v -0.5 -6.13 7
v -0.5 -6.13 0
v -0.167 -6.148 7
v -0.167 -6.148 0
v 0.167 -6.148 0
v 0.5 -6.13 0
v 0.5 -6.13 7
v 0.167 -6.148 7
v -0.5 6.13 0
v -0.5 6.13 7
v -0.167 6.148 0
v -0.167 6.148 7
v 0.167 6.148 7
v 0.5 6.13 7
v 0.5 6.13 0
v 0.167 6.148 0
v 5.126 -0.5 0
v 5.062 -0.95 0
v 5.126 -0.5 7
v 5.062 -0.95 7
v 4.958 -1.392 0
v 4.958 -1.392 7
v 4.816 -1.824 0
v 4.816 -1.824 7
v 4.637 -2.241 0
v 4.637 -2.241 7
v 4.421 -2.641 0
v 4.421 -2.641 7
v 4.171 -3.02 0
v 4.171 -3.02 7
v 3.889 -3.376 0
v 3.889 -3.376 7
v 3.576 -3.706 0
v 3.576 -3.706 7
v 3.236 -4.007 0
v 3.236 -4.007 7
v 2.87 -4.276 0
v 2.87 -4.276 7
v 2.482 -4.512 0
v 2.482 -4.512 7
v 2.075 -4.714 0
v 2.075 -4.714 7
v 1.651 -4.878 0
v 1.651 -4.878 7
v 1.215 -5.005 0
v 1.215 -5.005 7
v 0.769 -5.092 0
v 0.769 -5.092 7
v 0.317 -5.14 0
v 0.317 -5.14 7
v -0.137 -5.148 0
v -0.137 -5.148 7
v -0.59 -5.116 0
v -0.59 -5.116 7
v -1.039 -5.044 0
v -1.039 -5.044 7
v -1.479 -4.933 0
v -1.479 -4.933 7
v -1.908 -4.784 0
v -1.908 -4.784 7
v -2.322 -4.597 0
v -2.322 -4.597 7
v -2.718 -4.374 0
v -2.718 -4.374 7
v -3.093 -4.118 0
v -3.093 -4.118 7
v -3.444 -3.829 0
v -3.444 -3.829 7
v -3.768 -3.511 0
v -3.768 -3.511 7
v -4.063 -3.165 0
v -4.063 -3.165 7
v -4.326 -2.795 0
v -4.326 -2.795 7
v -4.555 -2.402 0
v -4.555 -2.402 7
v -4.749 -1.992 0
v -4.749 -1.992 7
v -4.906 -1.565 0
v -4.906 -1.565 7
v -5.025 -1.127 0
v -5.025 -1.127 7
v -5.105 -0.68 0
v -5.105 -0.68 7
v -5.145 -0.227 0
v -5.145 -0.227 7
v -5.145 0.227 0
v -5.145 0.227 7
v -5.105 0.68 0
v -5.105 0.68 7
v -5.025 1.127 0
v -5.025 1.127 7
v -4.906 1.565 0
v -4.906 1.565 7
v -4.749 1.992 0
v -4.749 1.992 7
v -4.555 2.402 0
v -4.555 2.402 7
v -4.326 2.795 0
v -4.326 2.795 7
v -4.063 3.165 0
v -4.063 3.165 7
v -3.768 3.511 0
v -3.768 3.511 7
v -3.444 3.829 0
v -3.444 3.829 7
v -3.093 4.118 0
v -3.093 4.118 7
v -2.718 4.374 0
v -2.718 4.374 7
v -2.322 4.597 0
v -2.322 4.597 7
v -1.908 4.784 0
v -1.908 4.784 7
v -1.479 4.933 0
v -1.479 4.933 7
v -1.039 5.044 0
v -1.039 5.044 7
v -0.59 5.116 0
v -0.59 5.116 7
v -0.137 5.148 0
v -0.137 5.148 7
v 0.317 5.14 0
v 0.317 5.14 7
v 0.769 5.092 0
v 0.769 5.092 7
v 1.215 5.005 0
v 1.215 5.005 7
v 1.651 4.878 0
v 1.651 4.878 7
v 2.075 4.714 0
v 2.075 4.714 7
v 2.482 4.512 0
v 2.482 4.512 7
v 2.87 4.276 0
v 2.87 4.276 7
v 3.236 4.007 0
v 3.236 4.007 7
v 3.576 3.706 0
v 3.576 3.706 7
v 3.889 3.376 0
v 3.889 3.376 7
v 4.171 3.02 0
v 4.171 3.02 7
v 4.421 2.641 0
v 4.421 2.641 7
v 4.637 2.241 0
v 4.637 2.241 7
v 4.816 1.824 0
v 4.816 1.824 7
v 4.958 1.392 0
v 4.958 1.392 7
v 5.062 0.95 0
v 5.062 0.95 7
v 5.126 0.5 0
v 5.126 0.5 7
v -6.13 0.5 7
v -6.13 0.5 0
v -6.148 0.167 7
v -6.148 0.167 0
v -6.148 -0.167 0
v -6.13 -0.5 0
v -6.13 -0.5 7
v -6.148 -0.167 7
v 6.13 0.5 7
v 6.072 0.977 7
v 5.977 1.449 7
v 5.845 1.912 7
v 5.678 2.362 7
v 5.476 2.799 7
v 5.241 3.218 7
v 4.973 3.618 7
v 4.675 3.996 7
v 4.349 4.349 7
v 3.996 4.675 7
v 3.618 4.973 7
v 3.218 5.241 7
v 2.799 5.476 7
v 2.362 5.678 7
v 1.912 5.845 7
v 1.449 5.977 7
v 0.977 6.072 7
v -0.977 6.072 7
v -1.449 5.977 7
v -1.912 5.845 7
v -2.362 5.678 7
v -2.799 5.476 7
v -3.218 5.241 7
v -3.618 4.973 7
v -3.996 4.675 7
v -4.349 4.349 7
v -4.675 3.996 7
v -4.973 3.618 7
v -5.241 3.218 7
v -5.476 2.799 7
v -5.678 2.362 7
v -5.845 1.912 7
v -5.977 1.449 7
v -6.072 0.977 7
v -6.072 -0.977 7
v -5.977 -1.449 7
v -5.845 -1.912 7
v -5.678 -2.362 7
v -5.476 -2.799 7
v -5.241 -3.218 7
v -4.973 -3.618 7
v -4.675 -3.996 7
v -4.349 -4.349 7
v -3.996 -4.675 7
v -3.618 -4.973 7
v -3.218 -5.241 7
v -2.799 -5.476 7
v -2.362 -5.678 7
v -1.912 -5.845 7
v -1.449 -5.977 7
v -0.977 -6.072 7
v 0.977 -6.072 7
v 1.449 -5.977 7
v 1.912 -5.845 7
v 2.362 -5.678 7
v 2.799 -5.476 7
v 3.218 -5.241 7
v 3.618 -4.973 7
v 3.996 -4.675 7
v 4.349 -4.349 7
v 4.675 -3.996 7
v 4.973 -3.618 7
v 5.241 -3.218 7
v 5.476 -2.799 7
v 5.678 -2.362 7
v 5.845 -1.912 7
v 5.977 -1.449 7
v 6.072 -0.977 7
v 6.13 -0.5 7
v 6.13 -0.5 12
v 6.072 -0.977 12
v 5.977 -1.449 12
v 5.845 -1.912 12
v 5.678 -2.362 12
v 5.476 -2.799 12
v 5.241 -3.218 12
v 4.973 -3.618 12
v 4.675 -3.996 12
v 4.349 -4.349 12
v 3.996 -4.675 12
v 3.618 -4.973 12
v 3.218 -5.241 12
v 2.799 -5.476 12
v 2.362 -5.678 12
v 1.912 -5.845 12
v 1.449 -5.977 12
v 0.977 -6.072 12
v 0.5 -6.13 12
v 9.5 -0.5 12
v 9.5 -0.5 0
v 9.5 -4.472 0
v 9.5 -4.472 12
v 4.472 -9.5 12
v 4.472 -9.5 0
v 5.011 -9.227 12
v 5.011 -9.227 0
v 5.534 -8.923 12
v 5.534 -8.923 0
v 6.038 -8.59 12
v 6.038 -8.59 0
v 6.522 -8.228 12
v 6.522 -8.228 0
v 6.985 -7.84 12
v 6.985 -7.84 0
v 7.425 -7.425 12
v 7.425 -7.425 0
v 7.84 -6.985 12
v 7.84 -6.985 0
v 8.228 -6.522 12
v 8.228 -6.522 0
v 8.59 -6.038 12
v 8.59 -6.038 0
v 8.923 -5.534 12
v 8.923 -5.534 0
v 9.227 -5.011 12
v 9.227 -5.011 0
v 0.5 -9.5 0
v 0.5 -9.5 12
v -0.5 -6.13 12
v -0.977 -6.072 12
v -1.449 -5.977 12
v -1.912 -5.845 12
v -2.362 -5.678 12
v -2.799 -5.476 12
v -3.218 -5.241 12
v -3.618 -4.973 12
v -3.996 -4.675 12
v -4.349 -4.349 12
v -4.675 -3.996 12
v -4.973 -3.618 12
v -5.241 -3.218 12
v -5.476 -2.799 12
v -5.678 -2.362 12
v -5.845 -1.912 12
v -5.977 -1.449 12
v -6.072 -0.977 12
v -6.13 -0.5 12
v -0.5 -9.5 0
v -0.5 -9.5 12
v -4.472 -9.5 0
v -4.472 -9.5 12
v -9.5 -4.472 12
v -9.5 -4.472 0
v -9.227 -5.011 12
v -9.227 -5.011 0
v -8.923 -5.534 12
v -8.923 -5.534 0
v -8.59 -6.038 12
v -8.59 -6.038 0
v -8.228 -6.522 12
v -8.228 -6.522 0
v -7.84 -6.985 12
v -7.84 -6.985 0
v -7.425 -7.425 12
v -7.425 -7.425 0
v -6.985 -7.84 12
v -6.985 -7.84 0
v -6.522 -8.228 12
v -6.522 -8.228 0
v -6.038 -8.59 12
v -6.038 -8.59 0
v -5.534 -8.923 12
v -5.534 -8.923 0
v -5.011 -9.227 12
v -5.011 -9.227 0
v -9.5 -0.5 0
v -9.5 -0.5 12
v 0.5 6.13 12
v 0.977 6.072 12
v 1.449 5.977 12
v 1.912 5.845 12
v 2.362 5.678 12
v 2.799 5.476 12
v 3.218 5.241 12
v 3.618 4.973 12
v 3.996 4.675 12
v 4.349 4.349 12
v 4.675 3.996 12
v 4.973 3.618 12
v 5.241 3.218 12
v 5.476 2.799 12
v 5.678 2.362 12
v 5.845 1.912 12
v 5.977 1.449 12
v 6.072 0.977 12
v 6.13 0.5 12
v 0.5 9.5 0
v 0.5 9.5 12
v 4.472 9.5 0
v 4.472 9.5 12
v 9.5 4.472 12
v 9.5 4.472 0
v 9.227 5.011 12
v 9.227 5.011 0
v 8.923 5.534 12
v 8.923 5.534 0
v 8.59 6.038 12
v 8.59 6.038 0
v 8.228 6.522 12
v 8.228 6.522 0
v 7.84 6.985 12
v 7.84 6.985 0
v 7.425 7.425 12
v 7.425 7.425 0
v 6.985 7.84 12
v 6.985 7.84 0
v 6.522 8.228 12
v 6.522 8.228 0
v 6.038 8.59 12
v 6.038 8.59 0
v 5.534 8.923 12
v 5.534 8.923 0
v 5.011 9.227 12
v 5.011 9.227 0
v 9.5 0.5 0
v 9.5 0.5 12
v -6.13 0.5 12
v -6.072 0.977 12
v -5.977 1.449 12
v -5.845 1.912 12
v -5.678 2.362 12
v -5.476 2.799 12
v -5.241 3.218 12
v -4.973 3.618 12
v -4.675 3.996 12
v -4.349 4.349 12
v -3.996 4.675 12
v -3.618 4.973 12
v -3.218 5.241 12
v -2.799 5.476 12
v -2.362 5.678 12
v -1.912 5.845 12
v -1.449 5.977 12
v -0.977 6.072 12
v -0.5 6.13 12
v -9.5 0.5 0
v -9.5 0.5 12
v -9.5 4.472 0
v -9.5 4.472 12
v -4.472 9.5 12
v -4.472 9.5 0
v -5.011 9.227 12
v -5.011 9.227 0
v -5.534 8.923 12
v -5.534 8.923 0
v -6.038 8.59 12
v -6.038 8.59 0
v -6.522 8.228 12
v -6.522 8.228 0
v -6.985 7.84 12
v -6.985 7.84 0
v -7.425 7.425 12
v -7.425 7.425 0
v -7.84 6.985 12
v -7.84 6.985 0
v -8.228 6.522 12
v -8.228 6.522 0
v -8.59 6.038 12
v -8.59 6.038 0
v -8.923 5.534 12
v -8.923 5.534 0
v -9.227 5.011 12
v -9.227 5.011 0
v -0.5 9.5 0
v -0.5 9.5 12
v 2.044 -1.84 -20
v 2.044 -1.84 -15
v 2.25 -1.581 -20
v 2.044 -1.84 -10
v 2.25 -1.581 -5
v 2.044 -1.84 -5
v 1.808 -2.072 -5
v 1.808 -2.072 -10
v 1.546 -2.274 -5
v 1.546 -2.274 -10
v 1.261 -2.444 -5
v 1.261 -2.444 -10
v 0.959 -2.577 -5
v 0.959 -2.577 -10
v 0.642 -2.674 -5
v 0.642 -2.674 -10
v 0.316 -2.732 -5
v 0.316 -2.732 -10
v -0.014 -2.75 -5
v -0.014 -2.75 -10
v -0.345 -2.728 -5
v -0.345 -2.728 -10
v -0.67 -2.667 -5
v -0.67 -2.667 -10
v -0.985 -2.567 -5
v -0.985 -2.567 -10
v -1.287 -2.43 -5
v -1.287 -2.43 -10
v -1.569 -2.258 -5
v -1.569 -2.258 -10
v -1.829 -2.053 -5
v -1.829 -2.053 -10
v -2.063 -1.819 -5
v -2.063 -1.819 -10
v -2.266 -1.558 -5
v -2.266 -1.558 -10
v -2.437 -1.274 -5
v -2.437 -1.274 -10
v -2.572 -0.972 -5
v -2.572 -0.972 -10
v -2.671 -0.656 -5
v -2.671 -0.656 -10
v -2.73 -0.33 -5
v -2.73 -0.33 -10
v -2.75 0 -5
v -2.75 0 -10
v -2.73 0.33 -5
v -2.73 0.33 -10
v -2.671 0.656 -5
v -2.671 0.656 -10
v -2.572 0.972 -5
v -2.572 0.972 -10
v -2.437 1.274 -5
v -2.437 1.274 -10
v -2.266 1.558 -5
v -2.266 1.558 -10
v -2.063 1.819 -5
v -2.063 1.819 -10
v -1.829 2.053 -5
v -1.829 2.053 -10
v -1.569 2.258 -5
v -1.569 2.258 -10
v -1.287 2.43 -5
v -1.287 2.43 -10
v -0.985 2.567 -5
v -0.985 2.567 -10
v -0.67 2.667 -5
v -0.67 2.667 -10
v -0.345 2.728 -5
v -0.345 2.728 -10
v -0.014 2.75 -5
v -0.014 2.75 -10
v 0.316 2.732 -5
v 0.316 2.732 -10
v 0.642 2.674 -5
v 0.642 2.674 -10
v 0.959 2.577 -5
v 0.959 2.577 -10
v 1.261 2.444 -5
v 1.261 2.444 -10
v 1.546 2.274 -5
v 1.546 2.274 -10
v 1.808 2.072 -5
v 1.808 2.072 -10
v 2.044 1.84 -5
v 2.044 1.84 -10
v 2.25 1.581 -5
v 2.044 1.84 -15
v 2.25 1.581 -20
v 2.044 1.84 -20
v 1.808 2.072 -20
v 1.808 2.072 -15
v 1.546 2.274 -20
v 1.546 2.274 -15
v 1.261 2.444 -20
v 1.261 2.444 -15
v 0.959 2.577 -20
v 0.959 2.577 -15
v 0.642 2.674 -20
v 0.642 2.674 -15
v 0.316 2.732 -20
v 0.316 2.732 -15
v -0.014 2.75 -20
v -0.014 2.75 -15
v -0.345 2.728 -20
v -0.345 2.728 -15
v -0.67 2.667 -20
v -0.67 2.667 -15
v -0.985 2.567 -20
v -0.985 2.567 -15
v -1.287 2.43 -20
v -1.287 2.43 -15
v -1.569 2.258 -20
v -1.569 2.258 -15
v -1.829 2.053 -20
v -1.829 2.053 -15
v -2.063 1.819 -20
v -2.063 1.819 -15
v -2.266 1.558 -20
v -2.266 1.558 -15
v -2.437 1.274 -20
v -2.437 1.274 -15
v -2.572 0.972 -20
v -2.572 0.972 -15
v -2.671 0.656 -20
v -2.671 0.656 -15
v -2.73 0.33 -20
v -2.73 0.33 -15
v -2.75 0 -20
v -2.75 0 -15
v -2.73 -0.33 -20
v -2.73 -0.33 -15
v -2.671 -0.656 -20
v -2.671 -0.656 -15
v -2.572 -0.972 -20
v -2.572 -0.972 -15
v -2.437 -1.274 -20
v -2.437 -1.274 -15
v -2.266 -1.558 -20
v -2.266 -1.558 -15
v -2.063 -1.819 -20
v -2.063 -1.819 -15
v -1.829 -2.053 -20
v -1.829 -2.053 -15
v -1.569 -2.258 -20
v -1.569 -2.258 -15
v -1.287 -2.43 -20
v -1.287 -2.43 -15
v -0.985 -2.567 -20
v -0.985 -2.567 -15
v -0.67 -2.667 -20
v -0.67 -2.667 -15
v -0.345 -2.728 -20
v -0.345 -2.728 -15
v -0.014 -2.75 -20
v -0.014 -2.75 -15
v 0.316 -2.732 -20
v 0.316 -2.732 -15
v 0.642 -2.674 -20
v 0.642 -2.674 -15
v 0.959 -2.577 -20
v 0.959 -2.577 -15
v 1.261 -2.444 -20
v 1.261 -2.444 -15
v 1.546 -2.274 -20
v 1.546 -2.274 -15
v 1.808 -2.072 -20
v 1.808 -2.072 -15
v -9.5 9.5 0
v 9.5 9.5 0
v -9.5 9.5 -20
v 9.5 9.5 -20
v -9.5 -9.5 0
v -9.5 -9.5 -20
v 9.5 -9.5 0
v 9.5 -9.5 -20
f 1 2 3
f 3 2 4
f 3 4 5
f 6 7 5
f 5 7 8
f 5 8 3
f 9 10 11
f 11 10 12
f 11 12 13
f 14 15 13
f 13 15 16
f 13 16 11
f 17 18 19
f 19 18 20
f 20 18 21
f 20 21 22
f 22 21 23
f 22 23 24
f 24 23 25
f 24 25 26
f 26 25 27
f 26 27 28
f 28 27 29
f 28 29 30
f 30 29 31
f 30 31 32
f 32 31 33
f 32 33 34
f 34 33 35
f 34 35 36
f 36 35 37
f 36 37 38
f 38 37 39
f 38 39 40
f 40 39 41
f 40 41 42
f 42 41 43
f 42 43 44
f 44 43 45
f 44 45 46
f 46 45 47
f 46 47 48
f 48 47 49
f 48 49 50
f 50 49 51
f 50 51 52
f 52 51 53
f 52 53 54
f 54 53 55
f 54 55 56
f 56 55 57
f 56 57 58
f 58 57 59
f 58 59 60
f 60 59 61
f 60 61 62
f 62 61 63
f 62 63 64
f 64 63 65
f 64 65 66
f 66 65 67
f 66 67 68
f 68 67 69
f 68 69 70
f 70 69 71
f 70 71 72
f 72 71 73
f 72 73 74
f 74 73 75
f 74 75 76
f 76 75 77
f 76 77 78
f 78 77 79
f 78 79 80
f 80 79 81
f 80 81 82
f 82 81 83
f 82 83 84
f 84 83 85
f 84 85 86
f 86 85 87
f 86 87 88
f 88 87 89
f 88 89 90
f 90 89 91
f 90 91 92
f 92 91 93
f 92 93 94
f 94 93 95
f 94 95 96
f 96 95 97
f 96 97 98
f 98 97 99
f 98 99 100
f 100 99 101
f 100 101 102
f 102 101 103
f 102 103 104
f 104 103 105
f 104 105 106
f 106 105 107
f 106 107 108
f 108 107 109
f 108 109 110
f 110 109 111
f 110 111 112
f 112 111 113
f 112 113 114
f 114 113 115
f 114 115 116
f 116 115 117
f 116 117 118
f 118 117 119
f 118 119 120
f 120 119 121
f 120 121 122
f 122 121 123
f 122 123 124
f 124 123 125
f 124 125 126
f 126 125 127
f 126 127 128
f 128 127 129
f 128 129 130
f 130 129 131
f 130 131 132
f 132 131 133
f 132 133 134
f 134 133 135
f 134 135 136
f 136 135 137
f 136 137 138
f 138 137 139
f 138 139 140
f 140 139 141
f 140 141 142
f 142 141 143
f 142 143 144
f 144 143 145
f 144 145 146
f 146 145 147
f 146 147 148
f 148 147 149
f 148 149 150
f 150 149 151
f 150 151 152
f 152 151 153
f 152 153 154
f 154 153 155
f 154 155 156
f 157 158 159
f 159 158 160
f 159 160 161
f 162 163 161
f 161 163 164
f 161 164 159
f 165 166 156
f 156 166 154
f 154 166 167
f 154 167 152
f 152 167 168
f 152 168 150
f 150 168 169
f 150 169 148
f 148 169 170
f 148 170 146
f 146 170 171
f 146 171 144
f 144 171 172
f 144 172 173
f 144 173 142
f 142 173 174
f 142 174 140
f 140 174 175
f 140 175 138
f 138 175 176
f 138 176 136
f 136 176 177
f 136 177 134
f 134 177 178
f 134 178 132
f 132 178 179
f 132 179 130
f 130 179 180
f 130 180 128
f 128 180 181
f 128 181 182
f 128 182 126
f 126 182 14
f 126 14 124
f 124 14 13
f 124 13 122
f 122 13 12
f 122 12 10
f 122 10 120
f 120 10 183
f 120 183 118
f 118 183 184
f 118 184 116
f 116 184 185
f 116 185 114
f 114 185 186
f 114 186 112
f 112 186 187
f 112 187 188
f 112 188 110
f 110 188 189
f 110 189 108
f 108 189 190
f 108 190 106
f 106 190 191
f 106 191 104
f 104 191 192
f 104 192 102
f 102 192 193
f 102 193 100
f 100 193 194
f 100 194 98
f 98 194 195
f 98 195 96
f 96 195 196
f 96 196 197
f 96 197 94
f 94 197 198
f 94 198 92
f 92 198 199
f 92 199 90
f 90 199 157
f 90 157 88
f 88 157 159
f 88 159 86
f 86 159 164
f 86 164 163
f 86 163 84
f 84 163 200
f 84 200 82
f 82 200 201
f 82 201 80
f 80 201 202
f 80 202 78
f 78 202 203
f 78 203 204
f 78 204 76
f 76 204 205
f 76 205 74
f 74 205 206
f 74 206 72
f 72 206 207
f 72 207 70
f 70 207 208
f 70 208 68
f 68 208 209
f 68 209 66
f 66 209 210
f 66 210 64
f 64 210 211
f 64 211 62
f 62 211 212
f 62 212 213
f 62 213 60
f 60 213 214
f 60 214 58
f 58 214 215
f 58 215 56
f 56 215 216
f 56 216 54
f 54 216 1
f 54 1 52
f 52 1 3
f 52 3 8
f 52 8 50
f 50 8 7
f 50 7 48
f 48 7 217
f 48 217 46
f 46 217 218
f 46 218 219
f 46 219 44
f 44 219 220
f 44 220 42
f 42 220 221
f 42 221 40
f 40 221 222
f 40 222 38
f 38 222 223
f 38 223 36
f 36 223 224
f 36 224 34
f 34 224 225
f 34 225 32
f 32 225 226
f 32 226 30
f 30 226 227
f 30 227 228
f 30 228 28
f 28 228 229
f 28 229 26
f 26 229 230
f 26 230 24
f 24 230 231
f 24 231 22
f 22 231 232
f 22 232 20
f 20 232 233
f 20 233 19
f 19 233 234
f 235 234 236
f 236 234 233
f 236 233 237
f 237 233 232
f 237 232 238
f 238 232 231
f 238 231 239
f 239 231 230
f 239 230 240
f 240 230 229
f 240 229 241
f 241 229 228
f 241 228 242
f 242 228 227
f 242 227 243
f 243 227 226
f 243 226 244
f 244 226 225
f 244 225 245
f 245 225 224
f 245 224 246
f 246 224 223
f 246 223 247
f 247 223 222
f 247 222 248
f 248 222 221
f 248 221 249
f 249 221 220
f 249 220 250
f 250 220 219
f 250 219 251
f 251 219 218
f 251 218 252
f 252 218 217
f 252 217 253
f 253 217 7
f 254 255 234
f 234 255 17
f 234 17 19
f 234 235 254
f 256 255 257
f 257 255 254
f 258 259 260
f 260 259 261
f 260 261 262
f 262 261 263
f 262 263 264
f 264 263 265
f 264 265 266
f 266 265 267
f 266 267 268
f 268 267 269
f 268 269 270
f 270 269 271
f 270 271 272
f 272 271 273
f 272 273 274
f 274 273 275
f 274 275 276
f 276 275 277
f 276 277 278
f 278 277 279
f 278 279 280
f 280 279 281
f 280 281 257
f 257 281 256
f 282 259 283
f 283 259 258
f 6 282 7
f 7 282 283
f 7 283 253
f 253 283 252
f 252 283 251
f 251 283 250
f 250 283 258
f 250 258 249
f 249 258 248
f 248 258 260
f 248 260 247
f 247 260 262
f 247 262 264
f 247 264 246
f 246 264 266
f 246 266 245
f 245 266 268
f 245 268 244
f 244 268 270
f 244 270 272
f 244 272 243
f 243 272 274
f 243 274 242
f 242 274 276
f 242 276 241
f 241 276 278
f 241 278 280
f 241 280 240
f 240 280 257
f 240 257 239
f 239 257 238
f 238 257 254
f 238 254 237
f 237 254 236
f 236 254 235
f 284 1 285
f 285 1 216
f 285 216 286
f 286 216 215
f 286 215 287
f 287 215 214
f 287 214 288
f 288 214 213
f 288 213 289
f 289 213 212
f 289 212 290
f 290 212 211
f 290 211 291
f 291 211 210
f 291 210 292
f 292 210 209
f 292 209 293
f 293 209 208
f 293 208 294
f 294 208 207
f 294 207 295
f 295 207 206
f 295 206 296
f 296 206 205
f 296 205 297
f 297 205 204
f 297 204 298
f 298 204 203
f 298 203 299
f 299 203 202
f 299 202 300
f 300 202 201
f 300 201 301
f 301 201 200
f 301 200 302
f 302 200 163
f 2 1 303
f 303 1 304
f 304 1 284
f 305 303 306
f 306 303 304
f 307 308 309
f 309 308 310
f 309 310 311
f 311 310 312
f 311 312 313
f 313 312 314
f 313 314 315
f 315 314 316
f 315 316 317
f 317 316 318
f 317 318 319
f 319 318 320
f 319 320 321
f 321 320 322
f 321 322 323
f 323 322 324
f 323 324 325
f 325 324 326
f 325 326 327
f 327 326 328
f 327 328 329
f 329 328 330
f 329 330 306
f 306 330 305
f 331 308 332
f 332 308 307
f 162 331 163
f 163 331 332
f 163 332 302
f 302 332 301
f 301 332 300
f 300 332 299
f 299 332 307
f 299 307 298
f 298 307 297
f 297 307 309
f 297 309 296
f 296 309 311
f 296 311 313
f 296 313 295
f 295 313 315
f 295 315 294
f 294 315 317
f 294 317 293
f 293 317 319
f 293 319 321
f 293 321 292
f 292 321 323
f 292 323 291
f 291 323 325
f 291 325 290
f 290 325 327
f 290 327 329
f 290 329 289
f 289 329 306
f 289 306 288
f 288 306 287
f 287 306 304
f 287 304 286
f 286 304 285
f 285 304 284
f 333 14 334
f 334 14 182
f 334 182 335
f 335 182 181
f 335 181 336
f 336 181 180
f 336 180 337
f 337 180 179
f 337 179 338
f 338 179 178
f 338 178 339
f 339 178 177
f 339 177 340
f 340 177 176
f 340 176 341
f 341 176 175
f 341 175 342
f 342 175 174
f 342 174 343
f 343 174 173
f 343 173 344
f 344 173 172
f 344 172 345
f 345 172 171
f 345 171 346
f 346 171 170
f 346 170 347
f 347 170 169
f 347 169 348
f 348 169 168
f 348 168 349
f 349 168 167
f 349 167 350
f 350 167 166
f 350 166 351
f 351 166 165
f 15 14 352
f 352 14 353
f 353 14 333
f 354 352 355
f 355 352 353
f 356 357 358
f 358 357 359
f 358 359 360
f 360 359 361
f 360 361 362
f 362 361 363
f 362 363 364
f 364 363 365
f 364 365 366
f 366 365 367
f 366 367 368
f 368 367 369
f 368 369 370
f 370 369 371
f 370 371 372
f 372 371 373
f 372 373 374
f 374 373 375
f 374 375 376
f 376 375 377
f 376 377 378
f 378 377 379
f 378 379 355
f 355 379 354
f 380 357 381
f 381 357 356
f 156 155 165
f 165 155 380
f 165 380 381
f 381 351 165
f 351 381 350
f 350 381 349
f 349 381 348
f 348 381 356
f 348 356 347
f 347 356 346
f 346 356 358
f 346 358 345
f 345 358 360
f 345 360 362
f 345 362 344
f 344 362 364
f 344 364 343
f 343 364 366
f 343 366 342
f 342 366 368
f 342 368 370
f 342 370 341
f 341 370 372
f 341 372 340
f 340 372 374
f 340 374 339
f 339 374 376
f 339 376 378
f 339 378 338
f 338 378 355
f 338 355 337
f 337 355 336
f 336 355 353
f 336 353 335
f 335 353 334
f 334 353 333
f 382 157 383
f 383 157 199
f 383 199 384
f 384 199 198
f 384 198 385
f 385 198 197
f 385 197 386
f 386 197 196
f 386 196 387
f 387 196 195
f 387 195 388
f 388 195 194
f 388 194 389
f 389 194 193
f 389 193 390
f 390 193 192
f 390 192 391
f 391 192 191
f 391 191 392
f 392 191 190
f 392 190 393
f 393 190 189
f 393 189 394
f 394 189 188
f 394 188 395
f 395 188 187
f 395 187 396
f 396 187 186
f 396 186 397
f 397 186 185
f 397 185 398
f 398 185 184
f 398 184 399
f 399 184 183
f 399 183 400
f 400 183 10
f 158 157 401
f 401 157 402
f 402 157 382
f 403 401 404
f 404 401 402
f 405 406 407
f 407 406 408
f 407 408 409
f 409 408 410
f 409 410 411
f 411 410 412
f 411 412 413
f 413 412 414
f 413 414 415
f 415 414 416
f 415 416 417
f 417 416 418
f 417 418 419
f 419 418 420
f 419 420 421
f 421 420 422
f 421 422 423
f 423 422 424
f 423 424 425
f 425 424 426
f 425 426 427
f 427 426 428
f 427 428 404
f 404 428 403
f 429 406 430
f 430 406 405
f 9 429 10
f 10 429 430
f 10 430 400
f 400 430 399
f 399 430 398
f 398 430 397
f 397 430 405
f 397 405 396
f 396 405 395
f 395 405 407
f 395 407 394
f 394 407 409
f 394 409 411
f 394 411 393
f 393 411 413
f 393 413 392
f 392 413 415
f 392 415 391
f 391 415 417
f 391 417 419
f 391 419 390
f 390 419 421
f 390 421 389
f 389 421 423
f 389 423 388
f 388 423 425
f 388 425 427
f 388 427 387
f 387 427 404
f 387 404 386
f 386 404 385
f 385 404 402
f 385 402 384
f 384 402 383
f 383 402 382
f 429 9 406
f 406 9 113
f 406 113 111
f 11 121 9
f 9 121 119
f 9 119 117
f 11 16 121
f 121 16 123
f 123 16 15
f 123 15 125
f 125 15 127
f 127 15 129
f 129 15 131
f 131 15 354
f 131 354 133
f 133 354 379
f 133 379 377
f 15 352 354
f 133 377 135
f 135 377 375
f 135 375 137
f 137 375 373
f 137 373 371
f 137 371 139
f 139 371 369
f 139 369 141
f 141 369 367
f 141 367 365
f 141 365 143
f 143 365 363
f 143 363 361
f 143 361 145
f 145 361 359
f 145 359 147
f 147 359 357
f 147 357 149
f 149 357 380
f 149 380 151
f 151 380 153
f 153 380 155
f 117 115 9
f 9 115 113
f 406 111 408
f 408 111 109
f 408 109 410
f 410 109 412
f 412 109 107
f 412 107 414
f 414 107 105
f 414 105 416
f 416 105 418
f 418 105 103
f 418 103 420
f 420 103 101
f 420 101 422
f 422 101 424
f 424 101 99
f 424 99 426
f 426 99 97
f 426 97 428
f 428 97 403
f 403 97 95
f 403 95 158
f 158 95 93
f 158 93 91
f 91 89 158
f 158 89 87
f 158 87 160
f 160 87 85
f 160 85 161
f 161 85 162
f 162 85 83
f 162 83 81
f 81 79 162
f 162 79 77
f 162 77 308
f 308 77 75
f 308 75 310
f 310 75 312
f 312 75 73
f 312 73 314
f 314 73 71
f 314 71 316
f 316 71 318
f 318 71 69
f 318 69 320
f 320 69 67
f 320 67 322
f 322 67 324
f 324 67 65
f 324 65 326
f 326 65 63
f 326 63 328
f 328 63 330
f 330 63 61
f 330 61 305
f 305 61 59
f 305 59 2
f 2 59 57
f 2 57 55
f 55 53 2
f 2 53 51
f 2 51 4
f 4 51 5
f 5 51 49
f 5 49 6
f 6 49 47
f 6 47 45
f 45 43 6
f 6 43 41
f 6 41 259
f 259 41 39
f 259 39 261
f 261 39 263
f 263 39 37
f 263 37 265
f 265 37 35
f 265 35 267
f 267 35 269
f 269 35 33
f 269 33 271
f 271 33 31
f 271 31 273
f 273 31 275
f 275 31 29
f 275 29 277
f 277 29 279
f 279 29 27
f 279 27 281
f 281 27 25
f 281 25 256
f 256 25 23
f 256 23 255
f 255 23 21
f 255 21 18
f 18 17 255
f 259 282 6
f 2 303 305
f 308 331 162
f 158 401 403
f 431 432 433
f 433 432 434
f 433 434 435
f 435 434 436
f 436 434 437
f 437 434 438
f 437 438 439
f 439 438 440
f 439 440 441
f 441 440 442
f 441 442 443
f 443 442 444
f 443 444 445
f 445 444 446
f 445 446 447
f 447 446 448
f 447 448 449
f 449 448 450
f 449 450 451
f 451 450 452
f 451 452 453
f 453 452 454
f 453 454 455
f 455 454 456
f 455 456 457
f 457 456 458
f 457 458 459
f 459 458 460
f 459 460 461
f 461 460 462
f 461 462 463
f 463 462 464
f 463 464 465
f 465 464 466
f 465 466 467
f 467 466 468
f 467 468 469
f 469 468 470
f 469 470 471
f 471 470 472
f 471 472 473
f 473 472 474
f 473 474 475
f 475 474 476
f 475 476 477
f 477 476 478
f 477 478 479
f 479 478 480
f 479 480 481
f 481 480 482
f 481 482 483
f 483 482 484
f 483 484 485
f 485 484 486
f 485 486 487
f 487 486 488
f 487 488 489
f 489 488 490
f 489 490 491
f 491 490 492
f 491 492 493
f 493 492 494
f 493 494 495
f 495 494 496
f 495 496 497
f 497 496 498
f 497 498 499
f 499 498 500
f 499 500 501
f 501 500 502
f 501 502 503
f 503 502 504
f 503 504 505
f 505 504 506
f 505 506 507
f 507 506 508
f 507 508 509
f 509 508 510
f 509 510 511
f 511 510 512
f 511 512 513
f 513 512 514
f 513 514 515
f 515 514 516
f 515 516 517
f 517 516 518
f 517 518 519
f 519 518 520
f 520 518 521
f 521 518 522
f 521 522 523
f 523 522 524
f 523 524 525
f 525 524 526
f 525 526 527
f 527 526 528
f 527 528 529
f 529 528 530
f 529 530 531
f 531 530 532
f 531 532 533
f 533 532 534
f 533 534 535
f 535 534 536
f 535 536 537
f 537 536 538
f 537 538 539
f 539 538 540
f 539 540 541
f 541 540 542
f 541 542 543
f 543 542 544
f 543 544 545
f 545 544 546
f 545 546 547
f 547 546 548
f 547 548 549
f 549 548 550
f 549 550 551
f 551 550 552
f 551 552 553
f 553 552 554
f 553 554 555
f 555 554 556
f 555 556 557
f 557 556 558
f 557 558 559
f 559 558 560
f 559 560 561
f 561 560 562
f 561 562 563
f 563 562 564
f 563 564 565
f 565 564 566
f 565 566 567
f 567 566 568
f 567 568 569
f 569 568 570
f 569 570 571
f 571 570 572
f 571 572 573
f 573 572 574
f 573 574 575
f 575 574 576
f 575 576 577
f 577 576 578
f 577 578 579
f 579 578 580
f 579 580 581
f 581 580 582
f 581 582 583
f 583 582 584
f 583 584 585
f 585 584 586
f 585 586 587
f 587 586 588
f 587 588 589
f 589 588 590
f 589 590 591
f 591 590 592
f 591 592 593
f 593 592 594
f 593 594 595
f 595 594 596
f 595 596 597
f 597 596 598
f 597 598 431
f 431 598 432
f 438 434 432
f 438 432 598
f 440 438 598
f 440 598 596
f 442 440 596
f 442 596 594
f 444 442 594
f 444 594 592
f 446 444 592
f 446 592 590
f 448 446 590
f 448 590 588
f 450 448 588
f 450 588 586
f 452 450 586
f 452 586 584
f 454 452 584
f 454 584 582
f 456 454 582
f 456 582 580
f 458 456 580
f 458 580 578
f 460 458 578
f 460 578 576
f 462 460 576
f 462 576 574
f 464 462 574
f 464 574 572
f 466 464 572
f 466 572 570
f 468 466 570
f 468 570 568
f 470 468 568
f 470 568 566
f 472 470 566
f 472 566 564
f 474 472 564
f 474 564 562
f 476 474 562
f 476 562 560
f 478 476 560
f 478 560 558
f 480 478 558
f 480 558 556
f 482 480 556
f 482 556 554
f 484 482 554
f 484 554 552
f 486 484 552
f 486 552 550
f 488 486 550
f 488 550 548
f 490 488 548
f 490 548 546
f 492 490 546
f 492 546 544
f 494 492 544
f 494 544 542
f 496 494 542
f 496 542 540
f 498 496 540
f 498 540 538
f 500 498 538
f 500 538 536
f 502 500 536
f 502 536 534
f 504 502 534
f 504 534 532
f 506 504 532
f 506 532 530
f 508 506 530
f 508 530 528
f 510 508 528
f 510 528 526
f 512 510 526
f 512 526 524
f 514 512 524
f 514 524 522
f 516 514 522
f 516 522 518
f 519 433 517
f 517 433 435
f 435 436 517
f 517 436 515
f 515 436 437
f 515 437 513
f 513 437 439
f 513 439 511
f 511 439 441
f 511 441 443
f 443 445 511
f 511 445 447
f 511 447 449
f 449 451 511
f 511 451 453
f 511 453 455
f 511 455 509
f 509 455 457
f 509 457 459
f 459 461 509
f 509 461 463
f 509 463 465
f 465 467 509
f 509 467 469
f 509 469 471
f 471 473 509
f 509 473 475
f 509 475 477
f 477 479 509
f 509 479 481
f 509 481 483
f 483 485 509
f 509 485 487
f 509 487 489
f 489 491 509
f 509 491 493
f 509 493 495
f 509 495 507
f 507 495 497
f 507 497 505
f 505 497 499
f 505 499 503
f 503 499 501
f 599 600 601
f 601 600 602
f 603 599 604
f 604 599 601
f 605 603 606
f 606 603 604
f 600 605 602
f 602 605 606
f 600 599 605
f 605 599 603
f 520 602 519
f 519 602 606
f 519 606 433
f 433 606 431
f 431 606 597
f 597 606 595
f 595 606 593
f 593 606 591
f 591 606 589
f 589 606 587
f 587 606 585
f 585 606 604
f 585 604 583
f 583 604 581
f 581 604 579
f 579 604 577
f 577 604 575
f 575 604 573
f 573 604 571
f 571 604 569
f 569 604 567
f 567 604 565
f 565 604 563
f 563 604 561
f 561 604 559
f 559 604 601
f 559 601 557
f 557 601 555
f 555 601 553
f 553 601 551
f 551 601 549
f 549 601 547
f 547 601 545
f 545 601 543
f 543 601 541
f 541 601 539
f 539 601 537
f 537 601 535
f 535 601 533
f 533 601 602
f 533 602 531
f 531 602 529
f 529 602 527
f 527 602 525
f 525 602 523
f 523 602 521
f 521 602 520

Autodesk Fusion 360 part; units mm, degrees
sketch "Sketch1" plane through (0, 0, 0) normal (0, 0, 1) x (1, 0, 0)
  circle A0 centre (0, 0) radius 5.15
  circle A1 centre (0, 0) radius 6.15
  line L0 (9.5, 9.5) -> (-9.5, 9.5)
  line L1 (-9.5, 9.5) -> (-9.5, -9.5)
  line L2 (-9.5, -9.5) -> (9.5, -9.5)
  line L3 (9.5, -9.5) -> (9.5, 9.5)
  line L4 (9.5, 9.5) -> (-9.5, -9.5) construction
  line L5 (-9.5, 9.5) -> (9.5, -9.5) construction
  line L6 (-7.4246, 7.4246) -> (7.4246, -7.4246) construction
  arc A2 (-4.4721, 9.5) -> (-9.5, 4.4721) centre (0, 0) ccw
  line L7 (-2.75, 0) -> (2.25, 0) construction
  line L8 (2.25, 1.5811) -> (2.25, -1.5811)
  arc A3 (2.25, 1.5811) -> (2.25, -1.5811) centre (0, 0) ccw
  arc A4 (-9.5, -4.4721) -> (-4.4721, -9.5) centre (0, 0) ccw
  arc A5 (4.4721, -9.5) -> (9.5, -4.4721) centre (0, 0) ccw
  arc A6 (9.5, 4.4721) -> (4.4721, 9.5) centre (0, 0) ccw
  line L9 (-0.5, 9.5) -> (0.5, 9.5) construction
  line L10 (0.5, 9.5) -> (0.5, -9.5)
  line L11 (0.5, -9.5) -> (-0.5, -9.5) construction
  line L12 (-0.5, -9.5) -> (-0.5, 9.5)
  line L13 (-0.5, 9.5) -> (0.5, -9.5) construction
  line L14 (0.5, 9.5) -> (-0.5, -9.5) construction
  line L15 (-9.5, 0.5) -> (9.5, 0.5)
  line L16 (9.5, 0.5) -> (9.5, -0.5) construction
  line L17 (9.5, -0.5) -> (-9.5, -0.5)
  line L18 (-9.5, -0.5) -> (-9.5, 0.5) construction
  line L19 (-9.5, 0.5) -> (9.5, -0.5) construction
  line L20 (9.5, 0.5) -> (-9.5, -0.5) construction
  dimension "d1" = 10.3
  dimension "d2" = 1
  dimension "d3" = 19
  dimension "d4" = 19
  dimension "d5" = 21
  dimension "d6" = 5.5
  dimension "d7" = 5
  dimension "d9" = 360
  dimension "d10" = 1
  dimension "d11" = 19
  dimension "d12" = 1
extrude "Extrude1" add sketch "Sketch1" along normal blind 12 contours A1 L0 L3 A6 L10 L15 | A1 L2 L3 A5 L10 L17 | A1 L0 L1 A2 L12 L15 | A1 L1 L2 A4 L12 L17 makes body 1 at (6.0994, 0.787, 4) makes body 2 at (-1.0723, -6.0558, 8) makes body 3 at (-3.922, 4.7372, 8) makes body 4 at (3.922, -4.7372, 8)
extrude "Extrude2" add sketch "Sketch1" along normal blind 7 contours A0 A1 L10 L15 | A0 A1 L10 L17 | A0 A1 L10 L12 | A0 A1 L10 L12 | A0 A1 L12 L15 | A0 A1 L12 L17 | A0 A1 L15 L17 picked at (-5.4675, -0.389) bodies 1 2 3 4
extrude "Extrude3" add sketch "Sketch1" against normal blind 20 separate body makes body 5
sketch "Sketch2" plane through (0, 0, -20) normal (0, 0, -1) x (1, 0, 0)
  line L0 (9.5, -9.5) -> (9.5, 9.5)
  line L1 (9.5, 9.5) -> (-9.5, 9.5)
  line L2 (-9.5, 9.5) -> (-9.5, -9.5)
  line L3 (-9.5, -9.5) -> (9.5, -9.5)
  arc A0 (2.25, 1.5811) -> (2.25, -1.5811) centre (0, 0) ccw
  line L4 (2.25, -1.5811) -> (2.25, 1.5811)
extrude "Extrude4" cut sketch "Sketch2" against normal blind 15 contours A0 L4 bodies 5
